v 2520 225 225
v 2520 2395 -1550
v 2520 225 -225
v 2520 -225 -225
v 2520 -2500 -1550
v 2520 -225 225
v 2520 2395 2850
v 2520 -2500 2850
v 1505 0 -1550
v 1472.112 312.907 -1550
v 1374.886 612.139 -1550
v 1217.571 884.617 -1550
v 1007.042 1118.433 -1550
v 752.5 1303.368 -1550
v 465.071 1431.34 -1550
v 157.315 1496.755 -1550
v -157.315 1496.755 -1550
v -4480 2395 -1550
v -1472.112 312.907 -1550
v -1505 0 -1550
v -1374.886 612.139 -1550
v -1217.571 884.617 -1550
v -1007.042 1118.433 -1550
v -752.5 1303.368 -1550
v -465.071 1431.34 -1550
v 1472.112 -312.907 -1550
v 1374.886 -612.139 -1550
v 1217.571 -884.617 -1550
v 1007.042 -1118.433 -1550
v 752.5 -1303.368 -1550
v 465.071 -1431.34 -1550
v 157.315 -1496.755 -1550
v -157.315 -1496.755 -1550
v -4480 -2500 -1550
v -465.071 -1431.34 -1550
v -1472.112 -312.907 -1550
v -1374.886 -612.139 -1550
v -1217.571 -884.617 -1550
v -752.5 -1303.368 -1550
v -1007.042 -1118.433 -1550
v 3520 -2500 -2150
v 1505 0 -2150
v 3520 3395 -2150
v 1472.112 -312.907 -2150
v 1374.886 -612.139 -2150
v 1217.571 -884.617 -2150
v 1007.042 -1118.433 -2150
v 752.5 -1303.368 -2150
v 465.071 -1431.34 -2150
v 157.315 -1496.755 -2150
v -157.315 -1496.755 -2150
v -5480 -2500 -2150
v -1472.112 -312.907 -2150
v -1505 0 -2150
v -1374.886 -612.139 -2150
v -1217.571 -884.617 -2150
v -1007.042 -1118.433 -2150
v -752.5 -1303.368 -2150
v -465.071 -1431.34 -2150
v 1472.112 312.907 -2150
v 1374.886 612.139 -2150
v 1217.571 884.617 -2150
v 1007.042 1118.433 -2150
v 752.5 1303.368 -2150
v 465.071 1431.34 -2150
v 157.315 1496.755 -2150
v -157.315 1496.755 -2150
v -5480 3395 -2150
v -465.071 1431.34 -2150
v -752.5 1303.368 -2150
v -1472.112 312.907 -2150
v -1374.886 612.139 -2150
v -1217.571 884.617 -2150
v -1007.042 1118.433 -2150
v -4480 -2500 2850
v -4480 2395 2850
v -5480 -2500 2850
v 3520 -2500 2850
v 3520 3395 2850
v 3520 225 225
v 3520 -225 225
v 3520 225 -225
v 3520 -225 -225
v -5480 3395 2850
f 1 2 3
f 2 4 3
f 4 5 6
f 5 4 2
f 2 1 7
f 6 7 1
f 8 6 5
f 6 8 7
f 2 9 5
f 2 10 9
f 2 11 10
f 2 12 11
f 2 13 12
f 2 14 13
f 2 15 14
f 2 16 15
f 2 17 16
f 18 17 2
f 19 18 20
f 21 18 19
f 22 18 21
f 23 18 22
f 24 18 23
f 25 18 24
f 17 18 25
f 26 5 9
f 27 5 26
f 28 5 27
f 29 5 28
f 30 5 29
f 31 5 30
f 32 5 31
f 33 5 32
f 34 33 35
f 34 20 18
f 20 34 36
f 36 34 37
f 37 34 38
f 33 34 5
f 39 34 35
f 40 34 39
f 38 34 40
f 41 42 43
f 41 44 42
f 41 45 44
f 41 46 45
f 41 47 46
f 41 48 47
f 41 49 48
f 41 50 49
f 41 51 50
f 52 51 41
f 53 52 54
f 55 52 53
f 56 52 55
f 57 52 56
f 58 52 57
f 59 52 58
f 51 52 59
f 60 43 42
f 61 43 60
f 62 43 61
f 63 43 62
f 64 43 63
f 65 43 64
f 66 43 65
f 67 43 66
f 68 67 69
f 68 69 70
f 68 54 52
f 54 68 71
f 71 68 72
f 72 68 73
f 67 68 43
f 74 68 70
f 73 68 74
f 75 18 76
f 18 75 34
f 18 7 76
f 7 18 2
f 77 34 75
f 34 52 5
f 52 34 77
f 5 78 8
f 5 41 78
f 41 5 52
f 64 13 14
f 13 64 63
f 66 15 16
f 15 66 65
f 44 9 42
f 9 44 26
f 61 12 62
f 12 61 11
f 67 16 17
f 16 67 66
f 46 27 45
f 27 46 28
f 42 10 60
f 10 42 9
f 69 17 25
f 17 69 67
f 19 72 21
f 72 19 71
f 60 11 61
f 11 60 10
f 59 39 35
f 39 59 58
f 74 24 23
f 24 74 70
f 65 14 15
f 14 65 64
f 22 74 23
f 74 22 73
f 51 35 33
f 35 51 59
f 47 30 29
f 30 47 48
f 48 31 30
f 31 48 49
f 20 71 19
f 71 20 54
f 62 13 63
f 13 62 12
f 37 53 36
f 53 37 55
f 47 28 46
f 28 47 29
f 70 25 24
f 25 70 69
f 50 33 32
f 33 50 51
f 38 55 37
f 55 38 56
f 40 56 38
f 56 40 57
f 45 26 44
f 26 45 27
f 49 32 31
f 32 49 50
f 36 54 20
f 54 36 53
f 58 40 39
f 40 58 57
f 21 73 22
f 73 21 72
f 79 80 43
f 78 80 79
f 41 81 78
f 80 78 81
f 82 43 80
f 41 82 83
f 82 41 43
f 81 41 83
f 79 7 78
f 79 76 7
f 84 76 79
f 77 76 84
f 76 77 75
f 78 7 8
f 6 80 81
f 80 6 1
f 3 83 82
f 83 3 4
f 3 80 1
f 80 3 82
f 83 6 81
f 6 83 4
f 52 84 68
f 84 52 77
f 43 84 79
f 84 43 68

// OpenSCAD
// Gray cement color
color("#9ea4a7")
union() {

  // floor
  difference()
  {
    translate([ -980, -52.5, -300.-1550.])
      cube([ 7000, 4895, 600.], center=true);
    translate([ 0, 0, -300.-1550.])
      cylinder( h=601, d=3010., center=true);
  }

  // beam front wall
  difference()
  {
    translate([ 3020, -52.5, 1900.0-1550.])
      cube([ 1000, 4895, 5000], center=true);
    translate([ 3020, 0., 1550.-1550.])
      cube([ 1001, 450., 450.], center=true);
  }

  // back stand wall
  translate([ -980, 5895/2 - 52.5, 1900-1550.])
    cube([ 9000, 1000., 5000.], center=true);

  // left wall
  translate([ -4980, -52.5, 1900.0-1550.])
    cube([ 1000, 4895, 5000], center=true);
}
